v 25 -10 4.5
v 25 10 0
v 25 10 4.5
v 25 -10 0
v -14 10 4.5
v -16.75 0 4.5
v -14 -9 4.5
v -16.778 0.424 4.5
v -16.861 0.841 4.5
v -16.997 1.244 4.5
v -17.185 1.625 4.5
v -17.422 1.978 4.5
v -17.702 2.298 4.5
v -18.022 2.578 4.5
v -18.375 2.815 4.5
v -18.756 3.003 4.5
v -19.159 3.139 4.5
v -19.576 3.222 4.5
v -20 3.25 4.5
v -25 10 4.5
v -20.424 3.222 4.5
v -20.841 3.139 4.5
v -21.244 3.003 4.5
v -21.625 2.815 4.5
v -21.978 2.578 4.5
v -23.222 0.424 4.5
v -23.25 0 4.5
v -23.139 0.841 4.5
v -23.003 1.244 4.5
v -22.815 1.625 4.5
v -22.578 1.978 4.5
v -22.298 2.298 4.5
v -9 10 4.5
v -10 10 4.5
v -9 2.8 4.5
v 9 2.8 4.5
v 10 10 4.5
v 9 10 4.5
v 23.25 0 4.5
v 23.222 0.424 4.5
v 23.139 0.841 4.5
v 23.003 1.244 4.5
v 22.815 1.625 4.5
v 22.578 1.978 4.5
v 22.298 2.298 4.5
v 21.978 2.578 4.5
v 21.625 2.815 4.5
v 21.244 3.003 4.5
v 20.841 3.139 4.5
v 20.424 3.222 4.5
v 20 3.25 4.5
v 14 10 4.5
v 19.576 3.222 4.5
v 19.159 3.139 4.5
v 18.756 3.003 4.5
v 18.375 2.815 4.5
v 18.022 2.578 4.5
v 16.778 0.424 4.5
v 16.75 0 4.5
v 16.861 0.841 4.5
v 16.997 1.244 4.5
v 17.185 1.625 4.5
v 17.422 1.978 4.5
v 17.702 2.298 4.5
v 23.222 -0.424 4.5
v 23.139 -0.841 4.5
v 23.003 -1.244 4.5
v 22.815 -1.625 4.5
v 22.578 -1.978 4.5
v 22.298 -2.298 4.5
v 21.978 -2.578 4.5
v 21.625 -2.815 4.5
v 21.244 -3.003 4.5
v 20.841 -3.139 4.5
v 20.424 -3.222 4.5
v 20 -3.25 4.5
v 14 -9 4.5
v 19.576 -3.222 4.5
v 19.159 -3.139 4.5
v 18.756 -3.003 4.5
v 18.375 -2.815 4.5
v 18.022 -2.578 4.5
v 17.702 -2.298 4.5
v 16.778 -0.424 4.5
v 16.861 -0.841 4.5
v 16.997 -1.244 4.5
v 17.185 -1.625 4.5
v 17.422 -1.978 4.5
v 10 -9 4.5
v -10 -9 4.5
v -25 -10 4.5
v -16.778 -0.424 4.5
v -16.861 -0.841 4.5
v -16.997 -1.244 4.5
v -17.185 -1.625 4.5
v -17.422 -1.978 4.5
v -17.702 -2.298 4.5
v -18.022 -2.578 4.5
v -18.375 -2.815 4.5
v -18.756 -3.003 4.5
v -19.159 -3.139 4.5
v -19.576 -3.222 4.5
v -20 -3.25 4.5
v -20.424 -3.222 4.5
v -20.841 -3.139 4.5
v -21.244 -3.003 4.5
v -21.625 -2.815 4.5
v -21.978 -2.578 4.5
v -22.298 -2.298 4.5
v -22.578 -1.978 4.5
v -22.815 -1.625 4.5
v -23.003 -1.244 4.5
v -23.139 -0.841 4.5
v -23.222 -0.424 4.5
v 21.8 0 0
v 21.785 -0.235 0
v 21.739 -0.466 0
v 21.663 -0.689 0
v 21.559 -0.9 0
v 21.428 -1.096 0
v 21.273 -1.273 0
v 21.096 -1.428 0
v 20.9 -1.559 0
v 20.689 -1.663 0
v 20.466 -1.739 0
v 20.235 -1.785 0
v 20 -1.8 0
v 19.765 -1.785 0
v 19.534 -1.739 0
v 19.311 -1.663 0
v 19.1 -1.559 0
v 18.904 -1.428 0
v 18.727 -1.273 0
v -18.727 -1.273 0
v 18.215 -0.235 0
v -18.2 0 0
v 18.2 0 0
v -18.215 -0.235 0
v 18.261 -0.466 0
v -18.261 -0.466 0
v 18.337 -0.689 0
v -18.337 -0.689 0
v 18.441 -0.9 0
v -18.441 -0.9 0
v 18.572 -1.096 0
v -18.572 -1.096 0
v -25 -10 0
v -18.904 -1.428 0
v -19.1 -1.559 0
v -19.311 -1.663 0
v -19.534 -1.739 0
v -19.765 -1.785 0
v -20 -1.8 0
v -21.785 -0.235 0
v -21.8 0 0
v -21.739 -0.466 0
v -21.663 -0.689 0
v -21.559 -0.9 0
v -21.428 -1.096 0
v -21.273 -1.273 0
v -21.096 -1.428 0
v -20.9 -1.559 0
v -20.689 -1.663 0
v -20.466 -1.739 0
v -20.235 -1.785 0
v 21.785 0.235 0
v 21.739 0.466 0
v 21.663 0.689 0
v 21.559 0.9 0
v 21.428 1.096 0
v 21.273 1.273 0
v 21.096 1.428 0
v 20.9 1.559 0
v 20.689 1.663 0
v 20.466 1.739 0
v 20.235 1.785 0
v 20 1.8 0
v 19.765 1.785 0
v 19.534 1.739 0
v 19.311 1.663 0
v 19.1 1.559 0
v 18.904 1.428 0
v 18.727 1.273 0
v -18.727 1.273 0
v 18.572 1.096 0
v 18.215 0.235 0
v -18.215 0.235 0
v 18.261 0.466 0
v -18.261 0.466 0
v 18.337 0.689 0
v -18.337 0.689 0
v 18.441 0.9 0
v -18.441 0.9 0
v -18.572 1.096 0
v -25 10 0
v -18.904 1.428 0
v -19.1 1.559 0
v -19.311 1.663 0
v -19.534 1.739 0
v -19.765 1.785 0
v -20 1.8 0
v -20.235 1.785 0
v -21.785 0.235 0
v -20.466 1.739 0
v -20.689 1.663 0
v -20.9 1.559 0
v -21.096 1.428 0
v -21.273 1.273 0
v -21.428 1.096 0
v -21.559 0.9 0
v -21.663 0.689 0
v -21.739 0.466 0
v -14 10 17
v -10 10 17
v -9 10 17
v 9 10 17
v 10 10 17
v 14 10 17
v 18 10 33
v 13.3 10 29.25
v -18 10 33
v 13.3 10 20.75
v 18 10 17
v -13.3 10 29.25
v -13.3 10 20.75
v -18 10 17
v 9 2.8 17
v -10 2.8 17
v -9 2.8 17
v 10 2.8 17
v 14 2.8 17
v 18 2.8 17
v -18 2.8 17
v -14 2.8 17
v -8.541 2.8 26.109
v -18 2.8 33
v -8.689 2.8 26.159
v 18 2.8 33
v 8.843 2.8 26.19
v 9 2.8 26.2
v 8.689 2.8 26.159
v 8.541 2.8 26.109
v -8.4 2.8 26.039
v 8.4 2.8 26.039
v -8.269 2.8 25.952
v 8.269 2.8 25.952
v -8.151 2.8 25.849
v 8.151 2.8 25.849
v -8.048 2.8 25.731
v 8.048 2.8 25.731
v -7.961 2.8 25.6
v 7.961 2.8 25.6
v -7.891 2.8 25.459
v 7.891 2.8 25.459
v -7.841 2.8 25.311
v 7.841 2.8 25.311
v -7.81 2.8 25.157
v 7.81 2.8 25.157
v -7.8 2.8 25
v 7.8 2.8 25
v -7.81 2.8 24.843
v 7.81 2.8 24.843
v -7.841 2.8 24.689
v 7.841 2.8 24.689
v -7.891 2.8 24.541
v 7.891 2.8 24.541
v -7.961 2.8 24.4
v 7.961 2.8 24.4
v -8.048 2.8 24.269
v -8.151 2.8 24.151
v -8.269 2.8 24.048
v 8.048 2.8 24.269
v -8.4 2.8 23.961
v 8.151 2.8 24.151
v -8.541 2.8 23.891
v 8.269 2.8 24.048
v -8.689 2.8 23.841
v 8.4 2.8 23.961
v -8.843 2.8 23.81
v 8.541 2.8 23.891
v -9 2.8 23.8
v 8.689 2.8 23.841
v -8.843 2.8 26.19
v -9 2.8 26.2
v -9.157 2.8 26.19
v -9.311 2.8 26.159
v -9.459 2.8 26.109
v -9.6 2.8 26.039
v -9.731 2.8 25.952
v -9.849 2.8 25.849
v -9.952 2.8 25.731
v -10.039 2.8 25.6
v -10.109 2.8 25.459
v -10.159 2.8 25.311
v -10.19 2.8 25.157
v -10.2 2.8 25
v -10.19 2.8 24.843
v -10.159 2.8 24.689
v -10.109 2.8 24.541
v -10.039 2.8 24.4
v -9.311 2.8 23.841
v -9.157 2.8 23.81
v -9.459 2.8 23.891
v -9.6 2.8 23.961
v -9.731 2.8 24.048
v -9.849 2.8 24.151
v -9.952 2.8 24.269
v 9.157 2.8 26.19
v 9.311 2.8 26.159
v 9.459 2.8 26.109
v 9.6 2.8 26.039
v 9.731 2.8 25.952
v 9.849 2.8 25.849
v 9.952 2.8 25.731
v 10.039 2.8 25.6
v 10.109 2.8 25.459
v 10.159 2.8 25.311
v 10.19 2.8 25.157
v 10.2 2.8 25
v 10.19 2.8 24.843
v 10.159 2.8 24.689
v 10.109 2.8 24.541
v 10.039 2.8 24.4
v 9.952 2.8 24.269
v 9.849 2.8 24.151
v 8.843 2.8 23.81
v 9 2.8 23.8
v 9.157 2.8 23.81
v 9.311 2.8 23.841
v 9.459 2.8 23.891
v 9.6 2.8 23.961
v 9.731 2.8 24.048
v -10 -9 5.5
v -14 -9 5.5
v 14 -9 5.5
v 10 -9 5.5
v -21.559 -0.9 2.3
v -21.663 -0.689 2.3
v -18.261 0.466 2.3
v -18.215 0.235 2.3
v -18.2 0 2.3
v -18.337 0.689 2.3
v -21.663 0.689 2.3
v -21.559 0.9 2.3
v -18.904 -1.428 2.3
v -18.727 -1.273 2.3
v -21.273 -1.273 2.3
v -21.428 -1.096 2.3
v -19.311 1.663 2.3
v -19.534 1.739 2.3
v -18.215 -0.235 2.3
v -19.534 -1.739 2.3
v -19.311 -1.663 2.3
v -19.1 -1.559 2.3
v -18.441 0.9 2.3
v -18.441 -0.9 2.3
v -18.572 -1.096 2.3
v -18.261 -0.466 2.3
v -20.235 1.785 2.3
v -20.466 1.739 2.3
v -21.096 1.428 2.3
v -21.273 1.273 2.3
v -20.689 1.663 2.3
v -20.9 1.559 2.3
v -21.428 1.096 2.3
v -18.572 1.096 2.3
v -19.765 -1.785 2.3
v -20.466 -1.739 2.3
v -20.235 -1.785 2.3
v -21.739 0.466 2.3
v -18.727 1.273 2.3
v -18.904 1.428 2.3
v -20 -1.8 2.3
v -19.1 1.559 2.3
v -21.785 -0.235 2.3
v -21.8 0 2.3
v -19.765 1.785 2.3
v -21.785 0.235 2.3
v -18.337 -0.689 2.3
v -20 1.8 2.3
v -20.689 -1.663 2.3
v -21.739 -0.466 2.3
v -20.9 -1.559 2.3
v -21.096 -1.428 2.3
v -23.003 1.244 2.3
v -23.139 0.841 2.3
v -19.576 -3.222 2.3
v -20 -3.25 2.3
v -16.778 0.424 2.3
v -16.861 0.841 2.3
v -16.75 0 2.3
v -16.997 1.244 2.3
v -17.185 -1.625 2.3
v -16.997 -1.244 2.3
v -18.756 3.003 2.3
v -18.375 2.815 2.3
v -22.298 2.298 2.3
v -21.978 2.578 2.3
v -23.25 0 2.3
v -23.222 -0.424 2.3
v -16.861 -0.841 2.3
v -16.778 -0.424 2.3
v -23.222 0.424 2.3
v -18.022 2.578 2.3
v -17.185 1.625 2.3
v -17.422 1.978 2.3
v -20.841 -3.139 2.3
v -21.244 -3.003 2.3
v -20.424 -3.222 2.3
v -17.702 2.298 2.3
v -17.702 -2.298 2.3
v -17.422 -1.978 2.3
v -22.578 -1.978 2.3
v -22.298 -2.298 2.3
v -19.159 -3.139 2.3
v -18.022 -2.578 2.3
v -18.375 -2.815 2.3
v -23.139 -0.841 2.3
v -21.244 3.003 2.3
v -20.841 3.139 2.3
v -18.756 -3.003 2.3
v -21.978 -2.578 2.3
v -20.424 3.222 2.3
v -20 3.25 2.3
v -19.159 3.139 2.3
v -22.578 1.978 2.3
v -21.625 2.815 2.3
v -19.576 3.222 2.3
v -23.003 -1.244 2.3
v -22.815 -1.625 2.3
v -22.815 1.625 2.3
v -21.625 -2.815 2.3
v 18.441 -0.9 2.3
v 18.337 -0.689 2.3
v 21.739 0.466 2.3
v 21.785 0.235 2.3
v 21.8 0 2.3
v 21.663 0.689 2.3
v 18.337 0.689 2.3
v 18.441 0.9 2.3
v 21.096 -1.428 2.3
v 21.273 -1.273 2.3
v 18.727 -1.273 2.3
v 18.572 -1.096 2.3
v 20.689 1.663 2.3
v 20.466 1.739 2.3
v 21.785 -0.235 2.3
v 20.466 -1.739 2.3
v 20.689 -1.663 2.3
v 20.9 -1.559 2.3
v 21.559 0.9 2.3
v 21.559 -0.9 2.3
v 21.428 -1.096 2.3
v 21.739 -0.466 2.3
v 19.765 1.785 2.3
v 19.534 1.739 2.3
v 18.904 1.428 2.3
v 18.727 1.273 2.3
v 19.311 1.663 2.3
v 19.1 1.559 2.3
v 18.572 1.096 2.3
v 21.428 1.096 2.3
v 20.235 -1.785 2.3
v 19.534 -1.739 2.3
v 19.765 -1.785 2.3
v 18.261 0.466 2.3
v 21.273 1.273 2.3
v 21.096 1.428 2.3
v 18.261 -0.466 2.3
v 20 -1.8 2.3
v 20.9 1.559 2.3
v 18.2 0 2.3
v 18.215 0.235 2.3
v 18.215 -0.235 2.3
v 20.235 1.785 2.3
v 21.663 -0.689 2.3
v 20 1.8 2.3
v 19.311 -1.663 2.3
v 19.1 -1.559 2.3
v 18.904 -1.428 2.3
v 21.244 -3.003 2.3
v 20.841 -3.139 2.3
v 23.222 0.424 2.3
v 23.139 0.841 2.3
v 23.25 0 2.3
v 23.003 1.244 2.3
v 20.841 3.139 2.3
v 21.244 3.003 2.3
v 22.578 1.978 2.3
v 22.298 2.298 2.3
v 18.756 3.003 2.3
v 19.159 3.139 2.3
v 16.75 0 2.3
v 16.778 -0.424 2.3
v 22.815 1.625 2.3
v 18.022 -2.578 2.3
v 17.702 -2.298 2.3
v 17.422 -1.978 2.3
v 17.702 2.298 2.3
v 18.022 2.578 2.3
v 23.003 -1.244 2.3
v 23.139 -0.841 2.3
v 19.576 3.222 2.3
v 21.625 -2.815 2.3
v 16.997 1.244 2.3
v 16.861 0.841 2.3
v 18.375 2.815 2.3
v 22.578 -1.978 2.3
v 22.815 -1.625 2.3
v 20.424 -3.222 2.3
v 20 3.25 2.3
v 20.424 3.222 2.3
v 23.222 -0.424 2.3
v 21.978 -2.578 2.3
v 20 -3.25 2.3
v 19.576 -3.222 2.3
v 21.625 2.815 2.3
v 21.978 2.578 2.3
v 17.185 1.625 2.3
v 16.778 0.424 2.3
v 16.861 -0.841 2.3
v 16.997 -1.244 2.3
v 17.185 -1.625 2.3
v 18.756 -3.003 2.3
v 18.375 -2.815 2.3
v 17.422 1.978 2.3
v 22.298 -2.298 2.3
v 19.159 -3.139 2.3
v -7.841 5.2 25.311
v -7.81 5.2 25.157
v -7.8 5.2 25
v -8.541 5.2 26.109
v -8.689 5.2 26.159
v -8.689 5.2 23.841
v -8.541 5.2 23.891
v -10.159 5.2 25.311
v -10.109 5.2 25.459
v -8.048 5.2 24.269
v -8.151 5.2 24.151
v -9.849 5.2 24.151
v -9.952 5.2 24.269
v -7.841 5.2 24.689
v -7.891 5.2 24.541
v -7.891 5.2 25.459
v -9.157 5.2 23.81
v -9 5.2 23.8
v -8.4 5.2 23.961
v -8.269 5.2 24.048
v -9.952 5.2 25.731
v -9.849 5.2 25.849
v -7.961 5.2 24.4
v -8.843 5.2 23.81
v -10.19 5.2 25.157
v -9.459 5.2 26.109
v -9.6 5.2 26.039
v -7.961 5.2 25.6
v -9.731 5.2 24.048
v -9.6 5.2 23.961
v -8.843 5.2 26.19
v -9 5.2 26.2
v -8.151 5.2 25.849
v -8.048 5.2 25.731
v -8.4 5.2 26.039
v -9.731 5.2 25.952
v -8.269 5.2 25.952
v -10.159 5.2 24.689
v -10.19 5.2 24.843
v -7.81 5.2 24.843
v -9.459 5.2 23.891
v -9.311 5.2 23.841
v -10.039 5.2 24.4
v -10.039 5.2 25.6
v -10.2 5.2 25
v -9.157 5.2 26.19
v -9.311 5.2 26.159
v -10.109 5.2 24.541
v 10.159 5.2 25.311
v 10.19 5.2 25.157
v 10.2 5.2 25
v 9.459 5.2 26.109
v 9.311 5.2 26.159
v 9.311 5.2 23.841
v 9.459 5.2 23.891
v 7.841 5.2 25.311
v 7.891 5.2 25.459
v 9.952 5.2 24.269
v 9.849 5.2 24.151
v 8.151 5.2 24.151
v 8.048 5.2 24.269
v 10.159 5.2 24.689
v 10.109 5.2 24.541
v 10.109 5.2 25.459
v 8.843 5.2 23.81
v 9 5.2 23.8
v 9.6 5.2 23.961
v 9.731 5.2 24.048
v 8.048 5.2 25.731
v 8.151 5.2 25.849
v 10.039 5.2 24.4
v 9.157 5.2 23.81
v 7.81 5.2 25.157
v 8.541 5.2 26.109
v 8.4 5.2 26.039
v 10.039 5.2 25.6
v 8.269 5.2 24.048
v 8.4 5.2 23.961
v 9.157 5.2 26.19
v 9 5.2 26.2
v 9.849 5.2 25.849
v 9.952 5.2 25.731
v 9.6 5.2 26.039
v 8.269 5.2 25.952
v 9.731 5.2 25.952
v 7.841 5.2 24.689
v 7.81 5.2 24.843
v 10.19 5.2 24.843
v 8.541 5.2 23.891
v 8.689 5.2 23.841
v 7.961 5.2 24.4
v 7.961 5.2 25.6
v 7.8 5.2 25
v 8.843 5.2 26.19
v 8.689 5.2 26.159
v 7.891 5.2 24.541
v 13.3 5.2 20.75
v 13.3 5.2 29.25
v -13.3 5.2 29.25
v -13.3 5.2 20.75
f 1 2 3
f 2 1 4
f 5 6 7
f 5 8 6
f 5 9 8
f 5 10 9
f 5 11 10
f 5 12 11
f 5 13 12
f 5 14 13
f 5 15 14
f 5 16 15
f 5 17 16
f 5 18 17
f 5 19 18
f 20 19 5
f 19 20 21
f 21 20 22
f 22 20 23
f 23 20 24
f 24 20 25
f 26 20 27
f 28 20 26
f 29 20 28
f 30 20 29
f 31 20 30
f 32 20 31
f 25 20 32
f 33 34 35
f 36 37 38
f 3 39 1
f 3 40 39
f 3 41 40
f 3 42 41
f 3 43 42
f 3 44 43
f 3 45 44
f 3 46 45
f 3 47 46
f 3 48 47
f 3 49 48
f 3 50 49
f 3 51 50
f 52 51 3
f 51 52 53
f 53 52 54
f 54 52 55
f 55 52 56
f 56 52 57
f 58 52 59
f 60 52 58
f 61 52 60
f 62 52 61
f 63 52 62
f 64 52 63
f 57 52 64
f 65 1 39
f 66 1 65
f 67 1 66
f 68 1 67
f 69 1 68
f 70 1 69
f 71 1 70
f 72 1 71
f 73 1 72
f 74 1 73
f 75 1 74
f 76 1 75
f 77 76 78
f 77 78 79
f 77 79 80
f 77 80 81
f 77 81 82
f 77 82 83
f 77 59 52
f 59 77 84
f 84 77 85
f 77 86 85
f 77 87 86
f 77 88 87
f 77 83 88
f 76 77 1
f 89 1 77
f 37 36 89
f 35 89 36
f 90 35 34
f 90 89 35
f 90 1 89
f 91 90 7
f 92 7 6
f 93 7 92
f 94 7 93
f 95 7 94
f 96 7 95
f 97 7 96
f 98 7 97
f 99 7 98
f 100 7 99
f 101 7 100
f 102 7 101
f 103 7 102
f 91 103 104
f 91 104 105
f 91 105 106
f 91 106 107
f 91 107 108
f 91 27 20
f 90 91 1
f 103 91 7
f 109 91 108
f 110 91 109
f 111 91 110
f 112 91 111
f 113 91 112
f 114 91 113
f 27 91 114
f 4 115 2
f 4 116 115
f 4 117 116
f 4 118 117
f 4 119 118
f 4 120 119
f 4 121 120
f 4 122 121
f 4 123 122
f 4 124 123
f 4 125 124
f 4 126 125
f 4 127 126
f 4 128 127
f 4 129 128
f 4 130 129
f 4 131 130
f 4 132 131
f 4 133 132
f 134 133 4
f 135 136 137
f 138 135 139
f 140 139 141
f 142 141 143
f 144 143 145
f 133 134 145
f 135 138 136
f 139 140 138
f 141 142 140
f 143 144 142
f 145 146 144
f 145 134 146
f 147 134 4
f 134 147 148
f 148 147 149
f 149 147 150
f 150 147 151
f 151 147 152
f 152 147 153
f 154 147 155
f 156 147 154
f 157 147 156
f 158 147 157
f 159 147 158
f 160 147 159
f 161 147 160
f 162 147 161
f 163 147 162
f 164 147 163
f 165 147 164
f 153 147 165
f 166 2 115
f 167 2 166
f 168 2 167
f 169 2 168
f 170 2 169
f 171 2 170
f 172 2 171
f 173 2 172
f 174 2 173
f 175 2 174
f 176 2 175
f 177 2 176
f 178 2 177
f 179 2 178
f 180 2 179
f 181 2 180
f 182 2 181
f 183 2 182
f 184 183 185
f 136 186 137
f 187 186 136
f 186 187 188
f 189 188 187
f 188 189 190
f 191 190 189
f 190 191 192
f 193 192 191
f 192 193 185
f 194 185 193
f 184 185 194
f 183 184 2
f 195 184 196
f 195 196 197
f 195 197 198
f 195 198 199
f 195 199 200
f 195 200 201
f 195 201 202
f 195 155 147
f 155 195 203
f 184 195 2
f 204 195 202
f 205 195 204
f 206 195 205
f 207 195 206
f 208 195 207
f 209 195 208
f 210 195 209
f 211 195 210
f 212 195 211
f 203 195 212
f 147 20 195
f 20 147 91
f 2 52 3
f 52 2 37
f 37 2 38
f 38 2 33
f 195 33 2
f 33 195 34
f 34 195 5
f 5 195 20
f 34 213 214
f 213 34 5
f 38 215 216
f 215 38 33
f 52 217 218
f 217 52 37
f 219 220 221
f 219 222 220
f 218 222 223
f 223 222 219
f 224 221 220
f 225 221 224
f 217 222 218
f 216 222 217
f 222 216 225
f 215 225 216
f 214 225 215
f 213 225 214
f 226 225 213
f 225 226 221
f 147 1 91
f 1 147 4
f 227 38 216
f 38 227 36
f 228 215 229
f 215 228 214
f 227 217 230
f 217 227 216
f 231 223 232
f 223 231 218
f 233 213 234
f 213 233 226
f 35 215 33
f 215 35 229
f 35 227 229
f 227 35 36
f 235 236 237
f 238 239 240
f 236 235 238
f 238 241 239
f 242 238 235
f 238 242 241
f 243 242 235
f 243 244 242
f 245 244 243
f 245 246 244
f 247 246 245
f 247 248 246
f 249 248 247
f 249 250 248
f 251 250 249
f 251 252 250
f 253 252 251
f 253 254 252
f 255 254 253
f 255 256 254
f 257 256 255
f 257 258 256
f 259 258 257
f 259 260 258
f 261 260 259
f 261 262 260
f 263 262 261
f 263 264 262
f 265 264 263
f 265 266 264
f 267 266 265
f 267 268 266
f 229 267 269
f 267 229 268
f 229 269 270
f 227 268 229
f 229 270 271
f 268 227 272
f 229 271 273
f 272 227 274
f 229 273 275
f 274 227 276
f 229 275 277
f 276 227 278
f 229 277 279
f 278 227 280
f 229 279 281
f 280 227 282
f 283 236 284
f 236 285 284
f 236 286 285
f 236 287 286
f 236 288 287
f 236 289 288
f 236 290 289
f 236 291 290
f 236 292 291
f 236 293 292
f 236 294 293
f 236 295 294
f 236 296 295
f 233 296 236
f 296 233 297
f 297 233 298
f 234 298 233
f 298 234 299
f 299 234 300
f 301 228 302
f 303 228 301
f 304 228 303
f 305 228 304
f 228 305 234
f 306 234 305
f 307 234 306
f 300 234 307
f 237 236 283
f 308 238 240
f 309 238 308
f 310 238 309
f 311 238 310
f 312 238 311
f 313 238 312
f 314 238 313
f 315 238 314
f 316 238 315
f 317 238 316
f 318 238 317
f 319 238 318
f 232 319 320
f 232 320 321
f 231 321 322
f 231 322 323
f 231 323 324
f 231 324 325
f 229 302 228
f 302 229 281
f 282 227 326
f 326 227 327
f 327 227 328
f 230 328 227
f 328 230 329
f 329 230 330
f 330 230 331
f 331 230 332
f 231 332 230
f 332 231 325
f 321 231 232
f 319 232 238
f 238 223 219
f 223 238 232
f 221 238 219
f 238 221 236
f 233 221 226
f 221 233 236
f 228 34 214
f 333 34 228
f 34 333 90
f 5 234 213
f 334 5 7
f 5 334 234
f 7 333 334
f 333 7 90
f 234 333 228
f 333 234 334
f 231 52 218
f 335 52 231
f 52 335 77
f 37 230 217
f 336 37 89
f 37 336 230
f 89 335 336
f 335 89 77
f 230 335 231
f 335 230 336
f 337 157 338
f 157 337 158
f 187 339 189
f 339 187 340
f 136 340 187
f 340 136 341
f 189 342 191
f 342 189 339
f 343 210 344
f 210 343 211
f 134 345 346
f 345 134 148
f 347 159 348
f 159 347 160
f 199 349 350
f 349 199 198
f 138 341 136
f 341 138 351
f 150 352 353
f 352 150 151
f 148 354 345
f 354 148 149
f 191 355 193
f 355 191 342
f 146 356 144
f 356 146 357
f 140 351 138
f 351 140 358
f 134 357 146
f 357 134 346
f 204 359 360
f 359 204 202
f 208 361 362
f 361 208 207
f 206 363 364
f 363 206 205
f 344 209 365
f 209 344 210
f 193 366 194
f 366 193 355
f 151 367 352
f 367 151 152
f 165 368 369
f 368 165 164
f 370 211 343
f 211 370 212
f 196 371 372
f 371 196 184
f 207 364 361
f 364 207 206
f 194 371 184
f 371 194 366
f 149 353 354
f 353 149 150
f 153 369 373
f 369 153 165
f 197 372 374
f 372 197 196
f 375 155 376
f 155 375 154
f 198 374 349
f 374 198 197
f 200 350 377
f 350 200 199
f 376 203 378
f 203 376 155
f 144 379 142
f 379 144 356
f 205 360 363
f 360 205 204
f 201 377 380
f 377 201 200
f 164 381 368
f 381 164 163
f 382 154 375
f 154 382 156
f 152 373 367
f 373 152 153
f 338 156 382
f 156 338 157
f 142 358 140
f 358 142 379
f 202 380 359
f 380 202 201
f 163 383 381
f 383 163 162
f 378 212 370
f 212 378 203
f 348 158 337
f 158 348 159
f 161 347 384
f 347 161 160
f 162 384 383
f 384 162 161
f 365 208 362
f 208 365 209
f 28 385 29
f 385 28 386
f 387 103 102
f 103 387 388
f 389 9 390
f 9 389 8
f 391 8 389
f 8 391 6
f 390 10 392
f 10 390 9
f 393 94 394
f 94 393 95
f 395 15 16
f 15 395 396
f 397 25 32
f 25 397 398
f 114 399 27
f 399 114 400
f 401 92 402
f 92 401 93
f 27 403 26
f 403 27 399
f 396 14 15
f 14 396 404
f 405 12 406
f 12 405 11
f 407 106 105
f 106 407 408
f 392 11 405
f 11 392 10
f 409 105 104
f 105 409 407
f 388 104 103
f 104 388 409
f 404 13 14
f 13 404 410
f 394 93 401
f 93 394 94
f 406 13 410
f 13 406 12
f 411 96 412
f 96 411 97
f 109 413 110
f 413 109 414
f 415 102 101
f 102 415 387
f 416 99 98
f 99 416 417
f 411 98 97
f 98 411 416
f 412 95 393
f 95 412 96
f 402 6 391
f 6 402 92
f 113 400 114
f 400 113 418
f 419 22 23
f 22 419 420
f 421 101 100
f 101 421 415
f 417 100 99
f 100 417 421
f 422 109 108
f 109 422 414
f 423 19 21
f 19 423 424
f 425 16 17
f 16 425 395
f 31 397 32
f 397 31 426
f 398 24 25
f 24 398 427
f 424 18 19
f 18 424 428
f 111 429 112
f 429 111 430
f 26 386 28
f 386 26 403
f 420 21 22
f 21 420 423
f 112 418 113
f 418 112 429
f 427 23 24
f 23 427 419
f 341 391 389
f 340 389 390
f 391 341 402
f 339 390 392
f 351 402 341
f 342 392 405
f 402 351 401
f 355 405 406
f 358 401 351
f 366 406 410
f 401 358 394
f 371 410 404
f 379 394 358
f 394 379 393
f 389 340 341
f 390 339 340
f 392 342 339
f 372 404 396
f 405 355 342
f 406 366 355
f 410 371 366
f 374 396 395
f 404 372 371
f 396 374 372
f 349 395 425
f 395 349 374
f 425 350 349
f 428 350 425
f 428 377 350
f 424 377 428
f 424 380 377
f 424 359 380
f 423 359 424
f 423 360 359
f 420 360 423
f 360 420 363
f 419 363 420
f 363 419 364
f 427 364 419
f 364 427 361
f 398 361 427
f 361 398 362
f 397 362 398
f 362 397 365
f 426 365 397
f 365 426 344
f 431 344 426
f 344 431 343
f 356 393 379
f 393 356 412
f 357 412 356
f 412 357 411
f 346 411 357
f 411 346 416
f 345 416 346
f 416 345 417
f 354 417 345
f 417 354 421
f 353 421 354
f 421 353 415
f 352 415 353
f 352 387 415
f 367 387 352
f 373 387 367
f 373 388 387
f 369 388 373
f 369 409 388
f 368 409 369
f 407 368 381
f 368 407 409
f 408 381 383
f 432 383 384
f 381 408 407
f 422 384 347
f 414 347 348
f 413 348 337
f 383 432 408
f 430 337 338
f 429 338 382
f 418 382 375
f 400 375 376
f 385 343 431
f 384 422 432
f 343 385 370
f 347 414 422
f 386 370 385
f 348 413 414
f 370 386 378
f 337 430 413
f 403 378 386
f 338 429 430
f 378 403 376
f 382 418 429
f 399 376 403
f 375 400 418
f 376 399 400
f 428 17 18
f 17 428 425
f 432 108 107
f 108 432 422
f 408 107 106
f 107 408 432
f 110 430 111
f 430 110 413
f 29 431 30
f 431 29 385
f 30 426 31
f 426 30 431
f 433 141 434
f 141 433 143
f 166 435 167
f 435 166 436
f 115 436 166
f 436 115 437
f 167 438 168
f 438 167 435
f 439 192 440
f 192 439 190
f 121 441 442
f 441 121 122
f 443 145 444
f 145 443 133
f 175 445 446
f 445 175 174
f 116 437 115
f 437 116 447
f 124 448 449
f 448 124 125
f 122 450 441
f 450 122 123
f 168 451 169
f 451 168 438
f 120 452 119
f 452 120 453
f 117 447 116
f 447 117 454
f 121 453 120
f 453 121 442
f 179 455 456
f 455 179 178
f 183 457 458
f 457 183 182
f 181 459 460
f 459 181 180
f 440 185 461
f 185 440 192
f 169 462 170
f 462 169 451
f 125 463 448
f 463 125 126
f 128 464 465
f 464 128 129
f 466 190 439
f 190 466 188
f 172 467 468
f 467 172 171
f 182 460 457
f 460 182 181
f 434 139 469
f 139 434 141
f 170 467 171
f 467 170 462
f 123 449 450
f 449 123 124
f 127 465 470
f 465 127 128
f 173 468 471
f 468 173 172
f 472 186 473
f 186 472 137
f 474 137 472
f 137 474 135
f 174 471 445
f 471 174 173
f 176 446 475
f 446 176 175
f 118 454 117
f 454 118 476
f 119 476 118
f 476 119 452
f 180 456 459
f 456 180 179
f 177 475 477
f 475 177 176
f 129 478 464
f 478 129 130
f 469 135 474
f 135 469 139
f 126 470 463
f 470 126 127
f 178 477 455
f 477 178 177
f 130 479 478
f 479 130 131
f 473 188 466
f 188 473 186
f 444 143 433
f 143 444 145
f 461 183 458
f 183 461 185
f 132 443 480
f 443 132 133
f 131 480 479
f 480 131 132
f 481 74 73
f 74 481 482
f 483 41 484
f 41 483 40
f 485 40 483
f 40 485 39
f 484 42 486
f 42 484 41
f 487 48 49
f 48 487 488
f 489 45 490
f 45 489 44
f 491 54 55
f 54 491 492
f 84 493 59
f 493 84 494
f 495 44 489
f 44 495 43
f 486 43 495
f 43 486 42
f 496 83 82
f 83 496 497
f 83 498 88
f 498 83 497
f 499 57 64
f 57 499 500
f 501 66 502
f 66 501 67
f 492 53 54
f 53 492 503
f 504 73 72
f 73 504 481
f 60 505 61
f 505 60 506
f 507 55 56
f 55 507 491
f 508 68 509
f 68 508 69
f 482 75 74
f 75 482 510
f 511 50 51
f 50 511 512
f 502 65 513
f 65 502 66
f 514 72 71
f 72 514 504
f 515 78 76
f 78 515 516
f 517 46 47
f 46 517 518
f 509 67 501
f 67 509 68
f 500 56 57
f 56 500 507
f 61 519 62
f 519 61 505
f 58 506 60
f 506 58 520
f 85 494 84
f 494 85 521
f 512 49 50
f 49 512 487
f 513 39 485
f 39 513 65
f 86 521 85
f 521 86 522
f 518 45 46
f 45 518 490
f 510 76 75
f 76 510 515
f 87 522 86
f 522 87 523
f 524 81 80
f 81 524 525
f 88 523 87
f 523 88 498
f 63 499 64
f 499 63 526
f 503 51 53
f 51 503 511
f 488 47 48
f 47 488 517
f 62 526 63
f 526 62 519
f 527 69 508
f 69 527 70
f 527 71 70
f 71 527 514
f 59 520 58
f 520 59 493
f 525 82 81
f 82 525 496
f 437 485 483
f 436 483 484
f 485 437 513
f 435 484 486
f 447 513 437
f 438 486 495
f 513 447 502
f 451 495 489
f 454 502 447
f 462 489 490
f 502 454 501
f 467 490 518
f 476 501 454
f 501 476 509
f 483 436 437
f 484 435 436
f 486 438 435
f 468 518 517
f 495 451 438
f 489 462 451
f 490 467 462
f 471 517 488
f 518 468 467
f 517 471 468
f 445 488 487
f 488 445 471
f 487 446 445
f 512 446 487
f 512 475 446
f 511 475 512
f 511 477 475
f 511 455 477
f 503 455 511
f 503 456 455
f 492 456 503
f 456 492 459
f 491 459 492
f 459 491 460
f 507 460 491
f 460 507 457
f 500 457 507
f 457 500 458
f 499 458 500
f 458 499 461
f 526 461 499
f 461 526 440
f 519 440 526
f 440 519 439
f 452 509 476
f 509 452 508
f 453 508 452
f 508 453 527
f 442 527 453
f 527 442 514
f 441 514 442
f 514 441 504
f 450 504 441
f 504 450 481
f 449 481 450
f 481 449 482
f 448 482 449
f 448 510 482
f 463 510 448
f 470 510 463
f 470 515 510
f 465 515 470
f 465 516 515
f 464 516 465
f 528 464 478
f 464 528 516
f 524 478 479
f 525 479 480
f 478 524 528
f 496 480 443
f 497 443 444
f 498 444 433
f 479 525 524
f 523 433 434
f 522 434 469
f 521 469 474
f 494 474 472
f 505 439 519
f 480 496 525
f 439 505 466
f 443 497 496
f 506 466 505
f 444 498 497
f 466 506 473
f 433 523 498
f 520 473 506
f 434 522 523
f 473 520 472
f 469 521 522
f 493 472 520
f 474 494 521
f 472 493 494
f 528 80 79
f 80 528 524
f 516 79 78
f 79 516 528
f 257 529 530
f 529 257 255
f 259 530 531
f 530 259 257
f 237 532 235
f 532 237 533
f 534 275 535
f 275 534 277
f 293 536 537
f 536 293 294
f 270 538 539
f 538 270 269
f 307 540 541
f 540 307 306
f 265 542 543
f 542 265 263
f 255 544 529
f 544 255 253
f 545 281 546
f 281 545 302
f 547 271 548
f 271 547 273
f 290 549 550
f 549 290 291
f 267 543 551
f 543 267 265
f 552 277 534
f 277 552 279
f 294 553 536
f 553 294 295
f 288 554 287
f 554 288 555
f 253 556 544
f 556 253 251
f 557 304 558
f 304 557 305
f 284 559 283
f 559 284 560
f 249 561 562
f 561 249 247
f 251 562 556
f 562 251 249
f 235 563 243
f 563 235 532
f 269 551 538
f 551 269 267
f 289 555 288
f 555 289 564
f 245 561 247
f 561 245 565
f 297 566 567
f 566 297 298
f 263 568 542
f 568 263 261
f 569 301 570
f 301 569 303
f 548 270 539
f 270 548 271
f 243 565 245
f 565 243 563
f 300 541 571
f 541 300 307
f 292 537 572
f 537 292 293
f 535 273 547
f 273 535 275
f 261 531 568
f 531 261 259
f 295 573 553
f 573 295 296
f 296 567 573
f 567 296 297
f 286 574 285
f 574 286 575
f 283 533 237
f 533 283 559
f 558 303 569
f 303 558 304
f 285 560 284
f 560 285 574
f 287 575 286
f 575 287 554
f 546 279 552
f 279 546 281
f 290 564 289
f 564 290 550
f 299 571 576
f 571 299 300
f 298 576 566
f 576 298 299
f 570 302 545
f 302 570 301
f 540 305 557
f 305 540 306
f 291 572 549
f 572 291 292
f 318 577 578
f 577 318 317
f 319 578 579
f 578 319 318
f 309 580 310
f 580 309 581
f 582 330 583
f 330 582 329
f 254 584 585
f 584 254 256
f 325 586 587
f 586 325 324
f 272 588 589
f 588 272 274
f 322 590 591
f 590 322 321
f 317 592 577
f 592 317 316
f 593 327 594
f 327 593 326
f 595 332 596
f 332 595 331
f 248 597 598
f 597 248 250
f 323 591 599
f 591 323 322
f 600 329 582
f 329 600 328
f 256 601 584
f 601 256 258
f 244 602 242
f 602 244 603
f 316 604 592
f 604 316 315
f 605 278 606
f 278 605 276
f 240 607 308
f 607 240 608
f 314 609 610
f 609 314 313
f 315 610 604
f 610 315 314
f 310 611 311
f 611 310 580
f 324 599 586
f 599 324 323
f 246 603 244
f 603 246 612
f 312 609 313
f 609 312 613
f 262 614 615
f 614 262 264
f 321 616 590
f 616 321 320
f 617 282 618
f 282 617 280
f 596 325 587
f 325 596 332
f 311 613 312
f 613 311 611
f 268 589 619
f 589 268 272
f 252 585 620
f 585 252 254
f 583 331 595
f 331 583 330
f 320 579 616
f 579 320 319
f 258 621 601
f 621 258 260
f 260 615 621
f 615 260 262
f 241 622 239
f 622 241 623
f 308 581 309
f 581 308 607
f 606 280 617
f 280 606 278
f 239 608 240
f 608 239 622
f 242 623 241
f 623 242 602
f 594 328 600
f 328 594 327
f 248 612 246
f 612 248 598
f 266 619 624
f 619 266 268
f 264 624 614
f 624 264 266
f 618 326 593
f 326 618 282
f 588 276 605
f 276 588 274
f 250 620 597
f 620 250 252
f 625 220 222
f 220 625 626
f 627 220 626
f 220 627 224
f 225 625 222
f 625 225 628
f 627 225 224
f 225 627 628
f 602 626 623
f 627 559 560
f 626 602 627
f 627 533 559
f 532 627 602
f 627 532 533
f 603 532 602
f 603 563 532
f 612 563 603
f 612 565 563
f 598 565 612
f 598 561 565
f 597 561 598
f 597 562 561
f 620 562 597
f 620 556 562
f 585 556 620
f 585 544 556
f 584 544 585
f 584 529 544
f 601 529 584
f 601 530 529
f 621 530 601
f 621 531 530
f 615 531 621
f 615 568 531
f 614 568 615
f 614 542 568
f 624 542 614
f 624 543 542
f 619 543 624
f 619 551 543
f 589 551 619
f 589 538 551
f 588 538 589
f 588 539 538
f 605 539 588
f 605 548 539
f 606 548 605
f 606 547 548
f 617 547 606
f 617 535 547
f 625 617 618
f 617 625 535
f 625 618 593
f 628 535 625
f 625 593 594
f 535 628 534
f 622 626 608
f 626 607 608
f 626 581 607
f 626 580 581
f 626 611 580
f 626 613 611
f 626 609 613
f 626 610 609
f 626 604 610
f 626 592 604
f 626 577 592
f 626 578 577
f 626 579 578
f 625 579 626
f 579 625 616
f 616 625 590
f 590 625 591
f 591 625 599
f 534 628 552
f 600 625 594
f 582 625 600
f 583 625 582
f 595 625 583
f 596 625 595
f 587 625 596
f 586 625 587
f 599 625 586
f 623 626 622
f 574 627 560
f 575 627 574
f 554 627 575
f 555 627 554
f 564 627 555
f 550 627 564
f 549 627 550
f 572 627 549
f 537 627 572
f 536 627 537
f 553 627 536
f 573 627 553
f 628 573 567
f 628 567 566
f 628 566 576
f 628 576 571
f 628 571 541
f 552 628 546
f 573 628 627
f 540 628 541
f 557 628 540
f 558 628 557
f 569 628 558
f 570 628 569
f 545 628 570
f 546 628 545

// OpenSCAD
$fn = 48;

// Camera interface measured from the base-removed Astra Pro.
boss_length = 26.0;
boss_height = 7.9;
boss_projection = 4.5;
boss_clearance = 0.3; // ponytail: tune for the printer if the first fit is tight.
m2_spacing = 18.0;
m2_clearance = 2.4;
interface_skin = 2.4;

// Reuses the two front holes occupied by LeKiwi's Camera-Mount-v8.
deck_hole_spacing = 40.0;
m3_clearance = 3.6;
m3_head_clearance = 6.5;
base_width = 50.0;
base_depth = 20.0;
base_thickness = 4.5;

camera_center_z = 25.0;
pad_width = 36.0;
pad_height = 16.0;
pad_depth = boss_projection + boss_clearance + interface_skin;
pad_front_y = base_depth / 2;
pad_back_y = pad_front_y - pad_depth;
pad_bottom_z = camera_center_z - pad_height / 2;
spine_width = 18.0;

module gusset(x) {
    hull() {
        translate([x, -base_depth / 2 + 1, base_thickness]) cube([4, 1, 1]);
        translate([x, pad_back_y, base_thickness]) cube([4, pad_depth, 1]);
        translate([x, pad_back_y, pad_bottom_z - 1]) cube([4, pad_depth, 1]);
    }
}

difference() {
    union() {
        translate([-base_width / 2, -base_depth / 2, 0])
            cube([base_width, base_depth, base_thickness]);
        translate([-spine_width / 2, pad_back_y, base_thickness])
            cube([spine_width, pad_depth, pad_bottom_z - base_thickness]);
        translate([-pad_width / 2, pad_back_y, pad_bottom_z])
            cube([pad_width, pad_depth, pad_height]);
        gusset(-spine_width / 2 - 5);
        gusset(spine_width / 2 + 1);
    }

    // M3 deck screws, counterbored flush on top.
    for (x = [-deck_hole_spacing / 2, deck_hole_spacing / 2]) {
        translate([x, 0, -0.1])
            cylinder(h=base_thickness + 0.2, d=m3_clearance);
        translate([x, 0, base_thickness - 2.2])
            cylinder(h=2.3, d=m3_head_clearance);
    }

    // Relief lets the outer pad seat on the housing without loading the boss.
    translate([
        -(boss_length + 2 * boss_clearance) / 2,
        pad_front_y - boss_projection - boss_clearance,
        camera_center_z - (boss_height + 2 * boss_clearance) / 2
    ])
        cube([
            boss_length + 2 * boss_clearance,
            boss_projection + boss_clearance + 0.1,
            boss_height + 2 * boss_clearance
        ]);

    for (x = [-m2_spacing / 2, m2_spacing / 2])
        translate([x, pad_front_y + 0.1, camera_center_z])
            rotate([90, 0, 0])
                cylinder(h=pad_depth + 0.2, d=m2_clearance);
}
